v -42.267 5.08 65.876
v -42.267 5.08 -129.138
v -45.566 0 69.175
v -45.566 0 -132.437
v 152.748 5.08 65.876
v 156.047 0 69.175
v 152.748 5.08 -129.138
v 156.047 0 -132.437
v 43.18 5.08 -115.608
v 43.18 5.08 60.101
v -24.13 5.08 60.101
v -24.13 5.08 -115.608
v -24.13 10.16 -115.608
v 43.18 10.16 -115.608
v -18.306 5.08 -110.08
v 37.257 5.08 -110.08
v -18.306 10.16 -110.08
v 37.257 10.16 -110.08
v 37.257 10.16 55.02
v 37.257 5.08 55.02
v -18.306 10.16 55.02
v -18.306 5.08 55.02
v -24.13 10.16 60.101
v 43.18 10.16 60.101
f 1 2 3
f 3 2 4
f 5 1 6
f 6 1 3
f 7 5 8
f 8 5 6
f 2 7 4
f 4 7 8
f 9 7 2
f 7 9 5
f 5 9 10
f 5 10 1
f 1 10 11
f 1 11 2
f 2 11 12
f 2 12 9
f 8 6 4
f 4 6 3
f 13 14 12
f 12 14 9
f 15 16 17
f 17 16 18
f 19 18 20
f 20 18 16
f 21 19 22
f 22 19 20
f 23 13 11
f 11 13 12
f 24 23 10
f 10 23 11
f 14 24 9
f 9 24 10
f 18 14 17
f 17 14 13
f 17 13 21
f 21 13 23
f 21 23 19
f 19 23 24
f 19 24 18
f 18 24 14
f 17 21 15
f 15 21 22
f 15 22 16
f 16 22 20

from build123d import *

# Parameters (mm, degrees)
SKETCH1_W           = 201.6125
SKETCH1_H           = 201.6125
BOSS_EXTRUDE1_DEPTH = 5.08
BOSS_EXTRUDE1_TAPER = 33
SKETCH2_W           = 67.31
SKETCH2_H           = 175.708748127
SKETCH2_W_2         = 55.5625
SKETCH2_H_2         = 165.1
BOSS_EXTRUDE3_DEPTH = 5.08


with BuildPart() as part:
    # Sketch1 → Boss-Extrude1 (new body)
    with BuildSketch(Plane(origin=(0, 0, 0), x_dir=(1, 0, 0), z_dir=(0, 1, 0))):
        with Locations((55.240442456, 31.631215749)):
            Rectangle(SKETCH1_W, SKETCH1_H)
    extrude(amount=BOSS_EXTRUDE1_DEPTH, taper=BOSS_EXTRUDE1_TAPER)

    # Sketch2 → Boss-Extrude3 (add)
    with BuildSketch(Plane(origin=(0, 5.08, 0), x_dir=(1, 0, 0), z_dir=(0, 1, 0))):
        with Locations((9.525, 27.753321004)):
            Rectangle(SKETCH2_W, SKETCH2_H)
        with Locations((9.475412799, 27.530326262)):
            Rectangle(SKETCH2_W_2, SKETCH2_H_2, mode=Mode.SUBTRACT)
    extrude(amount=BOSS_EXTRUDE3_DEPTH)


solid = part.part
